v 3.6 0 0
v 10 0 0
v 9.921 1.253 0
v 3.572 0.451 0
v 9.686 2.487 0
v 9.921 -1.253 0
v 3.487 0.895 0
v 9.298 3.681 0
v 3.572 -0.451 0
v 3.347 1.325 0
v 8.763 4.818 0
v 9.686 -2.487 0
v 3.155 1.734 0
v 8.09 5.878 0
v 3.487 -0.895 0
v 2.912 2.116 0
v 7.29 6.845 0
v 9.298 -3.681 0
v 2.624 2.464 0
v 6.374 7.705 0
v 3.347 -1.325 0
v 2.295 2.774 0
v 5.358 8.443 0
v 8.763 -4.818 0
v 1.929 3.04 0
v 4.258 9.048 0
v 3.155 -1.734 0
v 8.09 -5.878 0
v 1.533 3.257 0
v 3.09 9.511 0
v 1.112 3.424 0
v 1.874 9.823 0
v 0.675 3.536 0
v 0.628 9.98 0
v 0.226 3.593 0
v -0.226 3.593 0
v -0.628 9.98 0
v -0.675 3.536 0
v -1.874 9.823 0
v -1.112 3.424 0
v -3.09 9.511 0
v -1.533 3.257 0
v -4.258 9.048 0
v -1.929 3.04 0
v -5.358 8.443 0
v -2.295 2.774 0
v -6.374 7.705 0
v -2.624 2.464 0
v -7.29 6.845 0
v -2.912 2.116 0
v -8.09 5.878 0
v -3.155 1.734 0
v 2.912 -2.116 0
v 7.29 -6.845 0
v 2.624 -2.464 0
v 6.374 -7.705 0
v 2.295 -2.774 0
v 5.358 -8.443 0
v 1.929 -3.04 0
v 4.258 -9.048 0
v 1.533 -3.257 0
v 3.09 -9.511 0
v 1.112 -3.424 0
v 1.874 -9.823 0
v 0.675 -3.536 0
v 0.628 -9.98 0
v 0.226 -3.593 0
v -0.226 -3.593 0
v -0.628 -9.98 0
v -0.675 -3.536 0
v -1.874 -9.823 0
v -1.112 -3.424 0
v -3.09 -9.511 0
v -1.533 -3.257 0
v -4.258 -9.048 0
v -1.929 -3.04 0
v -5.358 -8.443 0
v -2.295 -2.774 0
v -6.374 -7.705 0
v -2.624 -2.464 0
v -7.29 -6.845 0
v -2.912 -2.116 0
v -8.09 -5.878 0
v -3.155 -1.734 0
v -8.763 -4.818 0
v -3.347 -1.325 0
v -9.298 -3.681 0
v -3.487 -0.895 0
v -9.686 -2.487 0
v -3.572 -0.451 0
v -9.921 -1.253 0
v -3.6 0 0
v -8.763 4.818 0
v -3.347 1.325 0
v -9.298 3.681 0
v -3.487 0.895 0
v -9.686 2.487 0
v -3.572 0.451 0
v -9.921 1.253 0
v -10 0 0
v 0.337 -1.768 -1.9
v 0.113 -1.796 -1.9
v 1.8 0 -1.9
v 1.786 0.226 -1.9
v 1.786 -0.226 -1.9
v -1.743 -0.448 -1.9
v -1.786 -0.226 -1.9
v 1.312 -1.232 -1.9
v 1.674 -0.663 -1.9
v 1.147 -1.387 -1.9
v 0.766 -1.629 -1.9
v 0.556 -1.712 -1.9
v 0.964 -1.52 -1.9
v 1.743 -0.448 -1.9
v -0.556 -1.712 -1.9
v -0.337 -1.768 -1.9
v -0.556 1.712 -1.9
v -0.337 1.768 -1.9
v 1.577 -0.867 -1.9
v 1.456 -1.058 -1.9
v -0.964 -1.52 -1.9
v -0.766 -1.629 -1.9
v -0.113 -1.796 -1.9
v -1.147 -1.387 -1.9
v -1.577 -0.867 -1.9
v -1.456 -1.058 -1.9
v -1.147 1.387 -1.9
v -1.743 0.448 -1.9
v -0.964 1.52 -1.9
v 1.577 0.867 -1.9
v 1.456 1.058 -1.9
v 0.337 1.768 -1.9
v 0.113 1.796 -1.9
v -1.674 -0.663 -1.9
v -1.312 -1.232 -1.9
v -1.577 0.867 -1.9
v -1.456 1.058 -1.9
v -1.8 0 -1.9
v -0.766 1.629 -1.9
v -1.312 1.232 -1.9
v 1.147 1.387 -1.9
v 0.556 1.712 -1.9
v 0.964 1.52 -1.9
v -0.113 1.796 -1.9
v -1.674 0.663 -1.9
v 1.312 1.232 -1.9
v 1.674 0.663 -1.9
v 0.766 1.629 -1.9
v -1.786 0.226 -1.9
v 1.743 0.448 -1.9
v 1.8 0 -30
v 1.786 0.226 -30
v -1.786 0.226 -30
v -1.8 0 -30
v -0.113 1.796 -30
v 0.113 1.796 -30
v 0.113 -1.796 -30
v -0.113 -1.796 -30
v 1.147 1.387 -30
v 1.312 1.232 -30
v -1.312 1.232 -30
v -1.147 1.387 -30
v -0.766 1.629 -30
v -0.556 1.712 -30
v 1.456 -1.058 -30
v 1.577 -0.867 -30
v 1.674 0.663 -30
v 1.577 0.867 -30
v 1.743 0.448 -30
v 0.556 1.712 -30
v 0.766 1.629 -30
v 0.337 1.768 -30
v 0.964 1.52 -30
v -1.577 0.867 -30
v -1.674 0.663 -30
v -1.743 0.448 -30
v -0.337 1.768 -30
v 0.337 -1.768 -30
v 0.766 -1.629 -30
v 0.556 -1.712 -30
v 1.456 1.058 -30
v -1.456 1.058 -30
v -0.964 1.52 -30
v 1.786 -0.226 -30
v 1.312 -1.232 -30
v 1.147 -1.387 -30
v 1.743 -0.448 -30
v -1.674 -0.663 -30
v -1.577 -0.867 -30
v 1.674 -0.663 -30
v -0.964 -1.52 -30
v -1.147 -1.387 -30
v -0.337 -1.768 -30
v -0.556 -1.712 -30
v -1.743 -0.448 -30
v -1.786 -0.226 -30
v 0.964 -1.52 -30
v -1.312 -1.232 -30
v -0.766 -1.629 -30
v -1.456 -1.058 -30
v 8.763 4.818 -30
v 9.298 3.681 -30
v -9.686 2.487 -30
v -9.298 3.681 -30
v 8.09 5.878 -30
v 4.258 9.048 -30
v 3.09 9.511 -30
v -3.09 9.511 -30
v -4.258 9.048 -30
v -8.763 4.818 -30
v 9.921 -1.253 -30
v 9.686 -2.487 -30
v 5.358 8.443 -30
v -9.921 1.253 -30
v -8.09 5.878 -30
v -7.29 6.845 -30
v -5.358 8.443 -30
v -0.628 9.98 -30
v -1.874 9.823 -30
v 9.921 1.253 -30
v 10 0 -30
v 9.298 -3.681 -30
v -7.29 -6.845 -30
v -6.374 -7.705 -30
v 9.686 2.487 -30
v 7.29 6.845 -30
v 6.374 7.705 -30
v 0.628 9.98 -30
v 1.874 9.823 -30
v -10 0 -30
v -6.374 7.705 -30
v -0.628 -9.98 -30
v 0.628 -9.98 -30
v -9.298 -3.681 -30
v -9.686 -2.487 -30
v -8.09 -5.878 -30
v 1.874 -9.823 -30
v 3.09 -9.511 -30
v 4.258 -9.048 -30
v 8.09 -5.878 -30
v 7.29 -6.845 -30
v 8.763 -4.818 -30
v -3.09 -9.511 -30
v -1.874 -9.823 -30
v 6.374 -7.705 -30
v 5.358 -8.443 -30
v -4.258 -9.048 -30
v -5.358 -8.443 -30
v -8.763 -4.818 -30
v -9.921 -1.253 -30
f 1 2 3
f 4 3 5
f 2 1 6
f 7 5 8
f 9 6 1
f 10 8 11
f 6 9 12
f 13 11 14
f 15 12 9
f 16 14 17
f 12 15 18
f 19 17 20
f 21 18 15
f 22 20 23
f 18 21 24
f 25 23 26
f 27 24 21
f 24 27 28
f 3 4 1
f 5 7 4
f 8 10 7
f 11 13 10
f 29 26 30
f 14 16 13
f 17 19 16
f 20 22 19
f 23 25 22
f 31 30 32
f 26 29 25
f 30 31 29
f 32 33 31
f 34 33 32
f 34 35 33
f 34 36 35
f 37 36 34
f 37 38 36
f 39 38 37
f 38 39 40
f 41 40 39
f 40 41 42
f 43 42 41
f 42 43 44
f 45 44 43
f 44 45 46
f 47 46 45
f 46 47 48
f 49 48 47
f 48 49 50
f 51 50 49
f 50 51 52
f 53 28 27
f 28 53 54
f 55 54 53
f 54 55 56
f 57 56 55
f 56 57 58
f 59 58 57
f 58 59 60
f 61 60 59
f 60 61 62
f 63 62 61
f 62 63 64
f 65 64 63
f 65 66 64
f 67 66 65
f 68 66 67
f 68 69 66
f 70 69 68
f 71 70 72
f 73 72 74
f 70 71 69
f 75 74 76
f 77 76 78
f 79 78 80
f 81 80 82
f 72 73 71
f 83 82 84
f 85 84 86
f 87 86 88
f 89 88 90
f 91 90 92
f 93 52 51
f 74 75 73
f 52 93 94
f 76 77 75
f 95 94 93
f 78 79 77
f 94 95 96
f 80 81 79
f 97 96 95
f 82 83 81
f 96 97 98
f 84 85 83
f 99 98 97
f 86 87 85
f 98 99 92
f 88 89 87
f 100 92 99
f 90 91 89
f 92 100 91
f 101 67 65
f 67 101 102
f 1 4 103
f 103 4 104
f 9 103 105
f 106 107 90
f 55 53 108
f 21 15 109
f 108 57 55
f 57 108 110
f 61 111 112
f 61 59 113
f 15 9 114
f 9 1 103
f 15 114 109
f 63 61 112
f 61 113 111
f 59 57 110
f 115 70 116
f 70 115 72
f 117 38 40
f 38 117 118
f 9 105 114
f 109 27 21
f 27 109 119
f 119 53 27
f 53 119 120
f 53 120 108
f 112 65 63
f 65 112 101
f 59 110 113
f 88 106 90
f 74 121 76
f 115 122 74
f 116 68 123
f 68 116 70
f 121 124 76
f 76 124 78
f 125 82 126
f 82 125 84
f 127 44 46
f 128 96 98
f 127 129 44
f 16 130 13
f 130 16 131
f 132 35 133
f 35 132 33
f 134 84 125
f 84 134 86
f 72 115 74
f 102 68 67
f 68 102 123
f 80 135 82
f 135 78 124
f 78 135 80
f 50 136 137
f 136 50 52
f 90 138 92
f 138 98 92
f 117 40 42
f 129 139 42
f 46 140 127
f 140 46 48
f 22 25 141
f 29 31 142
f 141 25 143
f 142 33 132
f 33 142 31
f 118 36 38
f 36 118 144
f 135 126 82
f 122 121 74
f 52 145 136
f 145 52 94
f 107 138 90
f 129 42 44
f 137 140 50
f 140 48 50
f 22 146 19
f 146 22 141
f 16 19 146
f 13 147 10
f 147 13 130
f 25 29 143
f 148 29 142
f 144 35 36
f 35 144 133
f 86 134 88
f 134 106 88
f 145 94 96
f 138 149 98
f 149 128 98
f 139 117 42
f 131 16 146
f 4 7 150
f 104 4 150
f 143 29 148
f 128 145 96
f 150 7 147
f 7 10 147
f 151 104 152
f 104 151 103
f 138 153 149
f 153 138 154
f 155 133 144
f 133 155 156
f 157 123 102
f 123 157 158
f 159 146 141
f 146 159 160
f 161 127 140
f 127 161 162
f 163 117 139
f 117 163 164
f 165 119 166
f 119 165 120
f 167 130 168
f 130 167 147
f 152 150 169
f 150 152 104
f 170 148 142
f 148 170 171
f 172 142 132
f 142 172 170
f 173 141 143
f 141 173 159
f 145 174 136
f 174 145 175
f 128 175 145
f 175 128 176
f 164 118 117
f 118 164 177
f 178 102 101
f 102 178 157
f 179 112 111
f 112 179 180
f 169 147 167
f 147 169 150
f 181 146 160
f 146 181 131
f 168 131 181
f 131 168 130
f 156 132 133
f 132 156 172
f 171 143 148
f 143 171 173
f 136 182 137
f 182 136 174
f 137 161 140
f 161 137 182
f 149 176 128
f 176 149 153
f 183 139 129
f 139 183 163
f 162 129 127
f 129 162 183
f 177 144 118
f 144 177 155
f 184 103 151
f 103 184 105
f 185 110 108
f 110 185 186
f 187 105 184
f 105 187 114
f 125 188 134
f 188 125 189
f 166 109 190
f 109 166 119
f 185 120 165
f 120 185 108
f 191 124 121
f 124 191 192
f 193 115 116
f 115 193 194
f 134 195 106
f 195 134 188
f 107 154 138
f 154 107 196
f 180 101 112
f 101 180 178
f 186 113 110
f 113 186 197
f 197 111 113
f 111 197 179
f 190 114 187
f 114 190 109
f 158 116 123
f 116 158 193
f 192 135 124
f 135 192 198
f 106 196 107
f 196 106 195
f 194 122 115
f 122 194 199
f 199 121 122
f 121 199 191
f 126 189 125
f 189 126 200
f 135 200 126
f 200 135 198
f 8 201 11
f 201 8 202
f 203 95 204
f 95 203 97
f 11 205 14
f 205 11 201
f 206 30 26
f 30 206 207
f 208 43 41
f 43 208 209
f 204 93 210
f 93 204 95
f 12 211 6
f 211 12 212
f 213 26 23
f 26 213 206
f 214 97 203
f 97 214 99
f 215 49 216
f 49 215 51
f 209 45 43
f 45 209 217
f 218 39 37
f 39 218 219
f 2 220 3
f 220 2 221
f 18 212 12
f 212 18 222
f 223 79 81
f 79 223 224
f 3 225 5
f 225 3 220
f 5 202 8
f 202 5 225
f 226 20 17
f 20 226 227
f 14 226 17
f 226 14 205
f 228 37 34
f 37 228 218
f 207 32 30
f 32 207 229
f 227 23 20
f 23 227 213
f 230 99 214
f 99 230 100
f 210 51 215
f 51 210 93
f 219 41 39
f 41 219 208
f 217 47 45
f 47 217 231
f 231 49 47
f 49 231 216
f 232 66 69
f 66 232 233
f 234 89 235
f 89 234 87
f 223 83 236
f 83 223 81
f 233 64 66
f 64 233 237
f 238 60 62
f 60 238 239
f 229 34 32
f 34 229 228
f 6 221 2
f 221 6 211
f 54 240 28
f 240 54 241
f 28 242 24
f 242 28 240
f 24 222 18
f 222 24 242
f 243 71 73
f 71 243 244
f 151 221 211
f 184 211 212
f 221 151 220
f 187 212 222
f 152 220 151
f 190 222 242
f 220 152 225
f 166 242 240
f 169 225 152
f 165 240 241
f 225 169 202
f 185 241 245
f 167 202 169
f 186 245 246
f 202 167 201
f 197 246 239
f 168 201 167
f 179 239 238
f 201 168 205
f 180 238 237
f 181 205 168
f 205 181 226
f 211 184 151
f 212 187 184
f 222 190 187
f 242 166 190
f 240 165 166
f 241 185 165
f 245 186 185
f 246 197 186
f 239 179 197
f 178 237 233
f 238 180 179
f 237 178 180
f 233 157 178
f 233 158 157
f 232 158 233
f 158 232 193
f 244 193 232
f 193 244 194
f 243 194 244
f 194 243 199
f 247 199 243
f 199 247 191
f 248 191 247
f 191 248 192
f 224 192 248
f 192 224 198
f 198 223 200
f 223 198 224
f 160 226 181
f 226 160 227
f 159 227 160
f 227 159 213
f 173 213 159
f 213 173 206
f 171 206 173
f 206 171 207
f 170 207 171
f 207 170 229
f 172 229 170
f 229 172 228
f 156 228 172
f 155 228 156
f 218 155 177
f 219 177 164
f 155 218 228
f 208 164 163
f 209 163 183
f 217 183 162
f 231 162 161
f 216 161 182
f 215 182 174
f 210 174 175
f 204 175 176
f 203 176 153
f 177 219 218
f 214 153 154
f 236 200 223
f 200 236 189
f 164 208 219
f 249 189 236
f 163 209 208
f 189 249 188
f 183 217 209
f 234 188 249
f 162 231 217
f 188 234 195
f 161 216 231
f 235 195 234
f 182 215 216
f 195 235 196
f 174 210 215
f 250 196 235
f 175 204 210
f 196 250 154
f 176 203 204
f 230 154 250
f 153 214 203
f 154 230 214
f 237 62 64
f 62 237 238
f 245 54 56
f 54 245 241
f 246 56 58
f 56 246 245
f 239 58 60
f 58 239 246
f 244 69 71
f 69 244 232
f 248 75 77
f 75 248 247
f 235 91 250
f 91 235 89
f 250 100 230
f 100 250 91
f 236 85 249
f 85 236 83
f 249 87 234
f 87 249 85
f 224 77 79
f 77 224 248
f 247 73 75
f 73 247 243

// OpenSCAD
$fn = 50;

difference() {
	union() {
		translate(v = [0, 0, -30.0]) {
			cylinder(h = 30, r = 10.0);
		}
	}
	union() {
		translate(v = [0, 0, 0]) {
			rotate(a = [0, 0, 0]) {
				difference() {
					union() {
						translate(v = [0, 0, -33.0]) {
							cylinder(h = 33, r = 1.5);
						}
						translate(v = [0, 0, -1.9]) {
							cylinder(h = 1.9, r1 = 1.8, r2 = 3.6);
						}
						translate(v = [0, 0, -33.0]) {
							cylinder(h = 33, r = 1.8);
						}
						translate(v = [0, 0, -33.0]) {
							cylinder(h = 33, r = 1.5);
						}
					}
					union();
				}
			}
		}
	}
}
